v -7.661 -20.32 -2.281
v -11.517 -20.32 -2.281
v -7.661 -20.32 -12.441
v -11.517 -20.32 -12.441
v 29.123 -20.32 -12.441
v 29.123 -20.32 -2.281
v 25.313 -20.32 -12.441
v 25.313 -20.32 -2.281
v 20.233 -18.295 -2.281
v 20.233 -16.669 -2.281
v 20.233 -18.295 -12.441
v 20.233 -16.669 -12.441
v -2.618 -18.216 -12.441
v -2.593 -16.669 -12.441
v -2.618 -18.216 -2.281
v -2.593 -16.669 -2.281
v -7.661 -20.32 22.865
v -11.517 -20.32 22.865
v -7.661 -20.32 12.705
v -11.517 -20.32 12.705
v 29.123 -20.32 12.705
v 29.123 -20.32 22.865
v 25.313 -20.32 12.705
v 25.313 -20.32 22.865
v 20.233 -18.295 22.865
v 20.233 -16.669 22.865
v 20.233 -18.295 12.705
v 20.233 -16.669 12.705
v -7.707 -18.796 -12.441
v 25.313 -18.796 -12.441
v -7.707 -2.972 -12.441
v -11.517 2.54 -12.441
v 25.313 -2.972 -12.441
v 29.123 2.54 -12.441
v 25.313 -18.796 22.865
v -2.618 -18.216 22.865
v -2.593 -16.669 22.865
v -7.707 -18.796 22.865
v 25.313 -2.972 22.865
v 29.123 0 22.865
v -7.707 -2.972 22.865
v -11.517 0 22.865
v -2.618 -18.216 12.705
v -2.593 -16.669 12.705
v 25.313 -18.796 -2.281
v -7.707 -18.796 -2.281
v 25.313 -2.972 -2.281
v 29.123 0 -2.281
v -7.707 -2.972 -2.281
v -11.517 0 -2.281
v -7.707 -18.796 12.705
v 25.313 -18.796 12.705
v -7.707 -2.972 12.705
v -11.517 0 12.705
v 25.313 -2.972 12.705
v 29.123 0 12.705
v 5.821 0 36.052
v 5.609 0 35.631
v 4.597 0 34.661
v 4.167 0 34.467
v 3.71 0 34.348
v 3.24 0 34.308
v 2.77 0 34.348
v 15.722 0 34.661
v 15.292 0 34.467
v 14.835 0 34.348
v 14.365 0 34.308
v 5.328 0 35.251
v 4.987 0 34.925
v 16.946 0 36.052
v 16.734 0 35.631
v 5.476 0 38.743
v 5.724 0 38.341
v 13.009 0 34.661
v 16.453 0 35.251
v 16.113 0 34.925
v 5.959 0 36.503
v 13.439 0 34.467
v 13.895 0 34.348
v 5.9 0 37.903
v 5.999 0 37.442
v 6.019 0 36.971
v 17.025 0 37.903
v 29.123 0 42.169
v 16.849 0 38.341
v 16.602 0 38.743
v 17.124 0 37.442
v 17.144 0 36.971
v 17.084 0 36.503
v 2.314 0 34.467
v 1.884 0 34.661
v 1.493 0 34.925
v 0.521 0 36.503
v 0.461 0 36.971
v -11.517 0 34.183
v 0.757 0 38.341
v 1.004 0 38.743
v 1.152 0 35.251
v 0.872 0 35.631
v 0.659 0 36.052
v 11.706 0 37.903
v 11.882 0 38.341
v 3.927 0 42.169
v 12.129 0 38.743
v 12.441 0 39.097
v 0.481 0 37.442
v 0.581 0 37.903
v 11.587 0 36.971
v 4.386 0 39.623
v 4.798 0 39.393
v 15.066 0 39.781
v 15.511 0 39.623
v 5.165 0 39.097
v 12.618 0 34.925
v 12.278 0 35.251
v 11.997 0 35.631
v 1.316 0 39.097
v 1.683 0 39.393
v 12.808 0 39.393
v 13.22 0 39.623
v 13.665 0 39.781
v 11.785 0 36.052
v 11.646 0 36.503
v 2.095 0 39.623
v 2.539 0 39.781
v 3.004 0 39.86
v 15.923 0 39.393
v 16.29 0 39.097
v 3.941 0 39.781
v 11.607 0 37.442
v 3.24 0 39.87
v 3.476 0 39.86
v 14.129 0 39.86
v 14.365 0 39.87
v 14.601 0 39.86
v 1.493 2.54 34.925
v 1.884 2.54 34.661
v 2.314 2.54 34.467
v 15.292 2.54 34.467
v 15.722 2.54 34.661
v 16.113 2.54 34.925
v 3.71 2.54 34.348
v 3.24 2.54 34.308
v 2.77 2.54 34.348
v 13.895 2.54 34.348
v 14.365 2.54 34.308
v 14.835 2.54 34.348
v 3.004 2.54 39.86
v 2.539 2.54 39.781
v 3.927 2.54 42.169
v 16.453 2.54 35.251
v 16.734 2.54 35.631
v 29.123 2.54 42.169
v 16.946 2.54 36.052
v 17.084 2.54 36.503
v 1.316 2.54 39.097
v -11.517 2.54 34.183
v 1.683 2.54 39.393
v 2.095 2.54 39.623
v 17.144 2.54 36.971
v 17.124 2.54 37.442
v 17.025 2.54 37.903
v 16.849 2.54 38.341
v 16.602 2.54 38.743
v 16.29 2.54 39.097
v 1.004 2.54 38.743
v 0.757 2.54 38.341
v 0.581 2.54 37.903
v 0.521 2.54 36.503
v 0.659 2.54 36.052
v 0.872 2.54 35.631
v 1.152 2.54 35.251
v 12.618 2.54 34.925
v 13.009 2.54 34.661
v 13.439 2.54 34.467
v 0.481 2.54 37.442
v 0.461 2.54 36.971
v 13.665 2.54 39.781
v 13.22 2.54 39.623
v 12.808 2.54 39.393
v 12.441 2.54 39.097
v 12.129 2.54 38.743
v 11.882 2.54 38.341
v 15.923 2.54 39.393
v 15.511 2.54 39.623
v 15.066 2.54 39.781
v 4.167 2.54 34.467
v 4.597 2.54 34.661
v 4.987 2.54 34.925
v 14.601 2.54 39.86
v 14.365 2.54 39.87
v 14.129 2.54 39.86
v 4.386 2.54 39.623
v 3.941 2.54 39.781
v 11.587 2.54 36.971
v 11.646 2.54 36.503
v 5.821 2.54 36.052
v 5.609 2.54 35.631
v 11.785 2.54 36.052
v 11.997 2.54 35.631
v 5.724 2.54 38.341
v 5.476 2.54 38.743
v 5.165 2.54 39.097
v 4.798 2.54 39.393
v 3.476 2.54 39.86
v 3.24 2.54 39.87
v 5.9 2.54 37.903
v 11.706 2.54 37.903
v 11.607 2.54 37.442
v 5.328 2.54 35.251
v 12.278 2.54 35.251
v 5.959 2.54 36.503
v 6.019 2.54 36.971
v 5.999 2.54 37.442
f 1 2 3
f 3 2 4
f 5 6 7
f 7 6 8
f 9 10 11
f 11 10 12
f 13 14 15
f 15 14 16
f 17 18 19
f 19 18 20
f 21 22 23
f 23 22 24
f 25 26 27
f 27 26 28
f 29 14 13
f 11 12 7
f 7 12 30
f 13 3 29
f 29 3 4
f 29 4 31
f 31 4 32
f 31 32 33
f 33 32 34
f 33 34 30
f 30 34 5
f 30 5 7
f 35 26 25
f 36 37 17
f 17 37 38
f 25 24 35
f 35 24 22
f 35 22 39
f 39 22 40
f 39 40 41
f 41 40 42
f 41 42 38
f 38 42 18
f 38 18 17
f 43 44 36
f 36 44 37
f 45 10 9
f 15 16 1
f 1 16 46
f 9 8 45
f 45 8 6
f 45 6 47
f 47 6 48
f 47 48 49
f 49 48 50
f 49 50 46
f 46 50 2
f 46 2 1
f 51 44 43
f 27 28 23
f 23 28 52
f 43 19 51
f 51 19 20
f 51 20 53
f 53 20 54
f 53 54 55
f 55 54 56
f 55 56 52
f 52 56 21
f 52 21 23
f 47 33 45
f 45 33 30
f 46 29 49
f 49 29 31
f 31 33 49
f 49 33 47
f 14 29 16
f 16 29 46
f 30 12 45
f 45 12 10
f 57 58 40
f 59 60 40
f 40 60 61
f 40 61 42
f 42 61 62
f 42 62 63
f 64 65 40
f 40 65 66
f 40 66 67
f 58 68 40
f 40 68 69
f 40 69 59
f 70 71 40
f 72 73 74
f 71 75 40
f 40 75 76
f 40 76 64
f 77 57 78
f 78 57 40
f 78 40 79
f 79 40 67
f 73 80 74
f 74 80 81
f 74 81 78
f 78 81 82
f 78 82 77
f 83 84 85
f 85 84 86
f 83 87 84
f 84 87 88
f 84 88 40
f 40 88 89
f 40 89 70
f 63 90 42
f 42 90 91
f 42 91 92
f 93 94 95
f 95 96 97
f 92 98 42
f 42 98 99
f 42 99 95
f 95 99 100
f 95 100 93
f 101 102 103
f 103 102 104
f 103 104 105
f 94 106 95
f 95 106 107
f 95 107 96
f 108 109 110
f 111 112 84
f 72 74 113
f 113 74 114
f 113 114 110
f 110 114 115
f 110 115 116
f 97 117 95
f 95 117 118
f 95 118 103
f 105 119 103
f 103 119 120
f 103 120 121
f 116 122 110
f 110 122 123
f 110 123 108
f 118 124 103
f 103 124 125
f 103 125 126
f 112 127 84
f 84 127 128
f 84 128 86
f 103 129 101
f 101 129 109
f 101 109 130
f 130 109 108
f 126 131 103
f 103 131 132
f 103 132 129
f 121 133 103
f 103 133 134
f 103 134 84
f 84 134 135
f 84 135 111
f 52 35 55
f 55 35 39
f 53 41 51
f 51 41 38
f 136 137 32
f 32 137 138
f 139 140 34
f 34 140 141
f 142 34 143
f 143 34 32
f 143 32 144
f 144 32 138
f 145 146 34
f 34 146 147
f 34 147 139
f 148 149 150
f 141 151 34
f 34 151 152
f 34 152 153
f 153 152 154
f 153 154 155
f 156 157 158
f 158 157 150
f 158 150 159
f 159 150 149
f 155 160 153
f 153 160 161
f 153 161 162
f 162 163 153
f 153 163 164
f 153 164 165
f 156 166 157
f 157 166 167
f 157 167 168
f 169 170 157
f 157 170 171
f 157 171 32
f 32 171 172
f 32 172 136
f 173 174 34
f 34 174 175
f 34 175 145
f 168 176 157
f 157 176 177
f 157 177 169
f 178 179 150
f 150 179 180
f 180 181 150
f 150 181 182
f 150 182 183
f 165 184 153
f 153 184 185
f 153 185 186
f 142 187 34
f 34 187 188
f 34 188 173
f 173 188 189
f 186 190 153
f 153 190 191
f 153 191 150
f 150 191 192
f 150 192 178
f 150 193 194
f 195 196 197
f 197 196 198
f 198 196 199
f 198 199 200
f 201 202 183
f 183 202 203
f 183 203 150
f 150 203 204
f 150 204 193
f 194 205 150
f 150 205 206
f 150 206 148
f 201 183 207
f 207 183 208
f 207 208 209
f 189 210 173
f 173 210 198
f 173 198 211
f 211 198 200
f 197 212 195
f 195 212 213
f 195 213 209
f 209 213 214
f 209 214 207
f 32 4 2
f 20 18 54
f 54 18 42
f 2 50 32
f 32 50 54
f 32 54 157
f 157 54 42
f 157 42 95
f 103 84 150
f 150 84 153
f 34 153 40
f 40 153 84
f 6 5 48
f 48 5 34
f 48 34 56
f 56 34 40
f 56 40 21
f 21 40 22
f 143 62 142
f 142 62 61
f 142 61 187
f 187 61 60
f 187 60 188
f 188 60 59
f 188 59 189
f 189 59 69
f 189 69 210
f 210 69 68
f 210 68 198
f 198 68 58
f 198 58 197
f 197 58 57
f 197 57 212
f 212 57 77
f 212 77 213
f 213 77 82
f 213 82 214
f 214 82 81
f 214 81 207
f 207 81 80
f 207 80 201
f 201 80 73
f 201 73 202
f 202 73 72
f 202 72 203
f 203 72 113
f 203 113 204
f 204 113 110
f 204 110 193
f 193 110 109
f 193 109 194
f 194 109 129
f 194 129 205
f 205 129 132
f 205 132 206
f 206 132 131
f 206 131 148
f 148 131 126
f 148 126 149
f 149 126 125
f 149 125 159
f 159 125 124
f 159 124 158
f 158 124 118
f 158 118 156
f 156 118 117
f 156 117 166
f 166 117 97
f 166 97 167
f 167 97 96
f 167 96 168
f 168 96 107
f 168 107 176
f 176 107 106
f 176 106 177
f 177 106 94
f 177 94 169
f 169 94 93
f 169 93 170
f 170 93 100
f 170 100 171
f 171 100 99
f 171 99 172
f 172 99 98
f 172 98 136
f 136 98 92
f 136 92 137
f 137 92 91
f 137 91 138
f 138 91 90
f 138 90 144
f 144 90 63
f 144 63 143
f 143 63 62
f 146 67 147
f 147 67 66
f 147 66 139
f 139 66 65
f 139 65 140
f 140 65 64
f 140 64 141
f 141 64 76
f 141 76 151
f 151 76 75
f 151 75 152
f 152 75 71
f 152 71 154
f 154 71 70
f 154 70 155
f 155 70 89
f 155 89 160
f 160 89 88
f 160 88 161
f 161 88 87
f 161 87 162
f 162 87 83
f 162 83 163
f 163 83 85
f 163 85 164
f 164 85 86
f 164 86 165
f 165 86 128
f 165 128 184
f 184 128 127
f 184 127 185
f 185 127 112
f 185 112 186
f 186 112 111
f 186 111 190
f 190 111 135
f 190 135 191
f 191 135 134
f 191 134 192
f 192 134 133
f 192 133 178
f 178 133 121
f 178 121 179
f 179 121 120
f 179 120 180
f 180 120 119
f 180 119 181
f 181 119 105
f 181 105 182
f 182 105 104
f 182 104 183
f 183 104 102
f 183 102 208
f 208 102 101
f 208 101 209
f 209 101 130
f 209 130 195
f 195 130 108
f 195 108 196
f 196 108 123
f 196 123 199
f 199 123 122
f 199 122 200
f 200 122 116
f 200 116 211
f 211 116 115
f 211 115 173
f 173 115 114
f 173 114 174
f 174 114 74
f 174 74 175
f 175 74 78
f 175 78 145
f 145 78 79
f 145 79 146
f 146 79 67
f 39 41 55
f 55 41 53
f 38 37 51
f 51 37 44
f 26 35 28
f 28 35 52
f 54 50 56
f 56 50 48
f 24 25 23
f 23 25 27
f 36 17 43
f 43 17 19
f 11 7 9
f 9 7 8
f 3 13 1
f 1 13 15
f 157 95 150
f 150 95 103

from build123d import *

# Parameters (mm, degrees)
SKETCH3_R           = 2.7813
BOSS_EXTRUDE3_DEPTH = 2.54
SKETCH4_W           = 3.81
SKETCH4_H           = 40.386
BOSS_EXTRUDE4_DEPTH = 20.32
SKETCH5_W           = 40.386
SKETCH5_H           = 1.524
BOSS_EXTRUDE5_DEPTH = 5.08
SKETCH6_W           = 40.386
SKETCH6_H           = 1.524
BOSS_EXTRUDE6_DEPTH = 5.08
SKETCH7_W           = 40.64
SKETCH7_H           = 20.32
CUT_EXTRUDE1_DEPTH  = 5.08
SKETCH11_W          = 40.64
SKETCH11_H          = 35.306
BOSS_EXTRUDE7_DEPTH = 2.9718
BOSS_EXTRUDE8_DEPTH = 35.306
SKETCH8_W           = 14.986
SKETCH8_H           = 20.32
CUT_EXTRUDE2_DEPTH  = 41.64
CUT_EXTRUDE3_DEPTH  = 36.306
SKETCH14_R          = 3.81
SKETCH14_R_2        = 2.7813
BOSS_EXTRUDE9_DEPTH = 2.54
CUT_EXTRUDE4_DEPTH  = 23.86


with BuildPart() as part:
    # Sketch3 → Boss-Extrude3 (new body)
    with BuildSketch(Plane(origin=(0, 0, 0), x_dir=(1, 0, 0), z_dir=(0, 1, 0))):
        Polygon((-11.517251908, 12.440983784), (29.122748092, 12.440983784), (29.122748092, -34.564151764), (29.122748092, -42.169016216), (18.885256114, -42.169016216), (-11.517251908, -42.169016216), align=None)
        with Locations((3.240148092, -37.089016216)):
            Circle(SKETCH3_R, mode=Mode.SUBTRACT)
        with Locations((14.365348092, -37.089016216)):
            Circle(SKETCH3_R, mode=Mode.SUBTRACT)
    extrude(amount=BOSS_EXTRUDE3_DEPTH)

    # Sketch4 → Boss-Extrude4 (add)
    with BuildSketch(Plane.XZ):
        with Locations((-9.612251908, 7.752016216)):
            Rectangle(SKETCH4_W, SKETCH4_H)
        with Locations((27.217748092, 7.752016216)):
            Rectangle(SKETCH4_W, SKETCH4_H)
    extrude(amount=BOSS_EXTRUDE4_DEPTH)

    # Sketch5 → Boss-Extrude5 (add)
    with BuildSketch(Plane(origin=(-7.707251908, 0, 0), x_dir=(0, 0, -1), z_dir=(1, 0, 0))):
        with Locations((-7.752016216, -19.558)):
            Rectangle(SKETCH5_W, SKETCH5_H)
    extrude(amount=BOSS_EXTRUDE5_DEPTH)

    # Sketch6 → Boss-Extrude6 (add)
    with BuildSketch(Plane.ZY.offset(-25.312748092)):
        with Locations((7.752016216, -19.558)):
            Rectangle(SKETCH6_W, SKETCH6_H)
    extrude(amount=BOSS_EXTRUDE6_DEPTH)

    # Sketch7 → Cut-Extrude1 (cut)
    with BuildSketch(Plane.XY.offset(27.945016216)):
        with Locations((8.802748092, -10.16)):
            Rectangle(SKETCH7_W, SKETCH7_H)
    extrude(amount=-CUT_EXTRUDE1_DEPTH, mode=Mode.SUBTRACT)

    # Sketch11 → Boss-Extrude7 (add)
    with BuildSketch(Plane.XZ):
        with Locations((8.802748092, 5.212016216)):
            Rectangle(SKETCH11_W, SKETCH11_H)
    extrude(amount=BOSS_EXTRUDE7_DEPTH)

    # Sketch12 → Boss-Extrude8 (add)
    with BuildSketch(Plane.XY.offset(22.865016216)):
        Polygon((-7.707251908, -18.796), (-2.593407451, -16.66881978), (-2.627251908, -18.796), align=None)
        Polygon((20.232748092, -18.796), (20.232748092, -16.66881978), (25.312748092, -18.796), align=None)
    extrude(amount=-BOSS_EXTRUDE8_DEPTH)

    # Sketch8 → Cut-Extrude2 (cut, through all)
    with BuildSketch(Plane(origin=(29.122748092, 0, 0), x_dir=(0, 0, -1), z_dir=(1, 0, 0))):
        with Locations((-5.212016216, -10.16)):
            Rectangle(SKETCH8_W, SKETCH8_H)
    extrude(amount=-CUT_EXTRUDE2_DEPTH, mode=Mode.SUBTRACT)

    # Sketch13 → Cut-Extrude3 (cut, through all)
    with BuildSketch(Plane.XY.offset(22.865016216)):
        Polygon((-2.618031664, -18.216492377), (-7.660745747, -20.32), (-2.627251908, -20.32), (-2.627251908, -18.796), align=None)
        Polygon((20.232748092, -18.294602636), (20.232748092, -20.32), (25.312748092, -20.32), align=None)
    extrude(amount=-CUT_EXTRUDE3_DEPTH, mode=Mode.SUBTRACT)

    # Sketch14 → Boss-Extrude9 (add)
    with BuildSketch(Plane.XZ):
        with Locations((3.240148092, 37.089016216)):
            Circle(SKETCH14_R)
        with Locations((3.240148092, 37.089016216)):
            Circle(SKETCH14_R_2, mode=Mode.SUBTRACT)
        with Locations((14.365348092, 37.089016216)):
            Circle(SKETCH14_R)
        with Locations((14.365348092, 37.089016216)):
            Circle(SKETCH14_R_2, mode=Mode.SUBTRACT)
    extrude(amount=-BOSS_EXTRUDE9_DEPTH)

    # Sketch15 → Cut-Extrude4 (cut, through all)
    with BuildSketch(Plane(origin=(0, 2.54, 0), x_dir=(1, 0, 0), z_dir=(0, 1, 0))):
        Polygon((-11.517251908, -42.169016216), (3.92724007, -42.169016216), (-11.517251908, -34.183083779), align=None)
    extrude(amount=-CUT_EXTRUDE4_DEPTH, mode=Mode.SUBTRACT)


solid = part.part
